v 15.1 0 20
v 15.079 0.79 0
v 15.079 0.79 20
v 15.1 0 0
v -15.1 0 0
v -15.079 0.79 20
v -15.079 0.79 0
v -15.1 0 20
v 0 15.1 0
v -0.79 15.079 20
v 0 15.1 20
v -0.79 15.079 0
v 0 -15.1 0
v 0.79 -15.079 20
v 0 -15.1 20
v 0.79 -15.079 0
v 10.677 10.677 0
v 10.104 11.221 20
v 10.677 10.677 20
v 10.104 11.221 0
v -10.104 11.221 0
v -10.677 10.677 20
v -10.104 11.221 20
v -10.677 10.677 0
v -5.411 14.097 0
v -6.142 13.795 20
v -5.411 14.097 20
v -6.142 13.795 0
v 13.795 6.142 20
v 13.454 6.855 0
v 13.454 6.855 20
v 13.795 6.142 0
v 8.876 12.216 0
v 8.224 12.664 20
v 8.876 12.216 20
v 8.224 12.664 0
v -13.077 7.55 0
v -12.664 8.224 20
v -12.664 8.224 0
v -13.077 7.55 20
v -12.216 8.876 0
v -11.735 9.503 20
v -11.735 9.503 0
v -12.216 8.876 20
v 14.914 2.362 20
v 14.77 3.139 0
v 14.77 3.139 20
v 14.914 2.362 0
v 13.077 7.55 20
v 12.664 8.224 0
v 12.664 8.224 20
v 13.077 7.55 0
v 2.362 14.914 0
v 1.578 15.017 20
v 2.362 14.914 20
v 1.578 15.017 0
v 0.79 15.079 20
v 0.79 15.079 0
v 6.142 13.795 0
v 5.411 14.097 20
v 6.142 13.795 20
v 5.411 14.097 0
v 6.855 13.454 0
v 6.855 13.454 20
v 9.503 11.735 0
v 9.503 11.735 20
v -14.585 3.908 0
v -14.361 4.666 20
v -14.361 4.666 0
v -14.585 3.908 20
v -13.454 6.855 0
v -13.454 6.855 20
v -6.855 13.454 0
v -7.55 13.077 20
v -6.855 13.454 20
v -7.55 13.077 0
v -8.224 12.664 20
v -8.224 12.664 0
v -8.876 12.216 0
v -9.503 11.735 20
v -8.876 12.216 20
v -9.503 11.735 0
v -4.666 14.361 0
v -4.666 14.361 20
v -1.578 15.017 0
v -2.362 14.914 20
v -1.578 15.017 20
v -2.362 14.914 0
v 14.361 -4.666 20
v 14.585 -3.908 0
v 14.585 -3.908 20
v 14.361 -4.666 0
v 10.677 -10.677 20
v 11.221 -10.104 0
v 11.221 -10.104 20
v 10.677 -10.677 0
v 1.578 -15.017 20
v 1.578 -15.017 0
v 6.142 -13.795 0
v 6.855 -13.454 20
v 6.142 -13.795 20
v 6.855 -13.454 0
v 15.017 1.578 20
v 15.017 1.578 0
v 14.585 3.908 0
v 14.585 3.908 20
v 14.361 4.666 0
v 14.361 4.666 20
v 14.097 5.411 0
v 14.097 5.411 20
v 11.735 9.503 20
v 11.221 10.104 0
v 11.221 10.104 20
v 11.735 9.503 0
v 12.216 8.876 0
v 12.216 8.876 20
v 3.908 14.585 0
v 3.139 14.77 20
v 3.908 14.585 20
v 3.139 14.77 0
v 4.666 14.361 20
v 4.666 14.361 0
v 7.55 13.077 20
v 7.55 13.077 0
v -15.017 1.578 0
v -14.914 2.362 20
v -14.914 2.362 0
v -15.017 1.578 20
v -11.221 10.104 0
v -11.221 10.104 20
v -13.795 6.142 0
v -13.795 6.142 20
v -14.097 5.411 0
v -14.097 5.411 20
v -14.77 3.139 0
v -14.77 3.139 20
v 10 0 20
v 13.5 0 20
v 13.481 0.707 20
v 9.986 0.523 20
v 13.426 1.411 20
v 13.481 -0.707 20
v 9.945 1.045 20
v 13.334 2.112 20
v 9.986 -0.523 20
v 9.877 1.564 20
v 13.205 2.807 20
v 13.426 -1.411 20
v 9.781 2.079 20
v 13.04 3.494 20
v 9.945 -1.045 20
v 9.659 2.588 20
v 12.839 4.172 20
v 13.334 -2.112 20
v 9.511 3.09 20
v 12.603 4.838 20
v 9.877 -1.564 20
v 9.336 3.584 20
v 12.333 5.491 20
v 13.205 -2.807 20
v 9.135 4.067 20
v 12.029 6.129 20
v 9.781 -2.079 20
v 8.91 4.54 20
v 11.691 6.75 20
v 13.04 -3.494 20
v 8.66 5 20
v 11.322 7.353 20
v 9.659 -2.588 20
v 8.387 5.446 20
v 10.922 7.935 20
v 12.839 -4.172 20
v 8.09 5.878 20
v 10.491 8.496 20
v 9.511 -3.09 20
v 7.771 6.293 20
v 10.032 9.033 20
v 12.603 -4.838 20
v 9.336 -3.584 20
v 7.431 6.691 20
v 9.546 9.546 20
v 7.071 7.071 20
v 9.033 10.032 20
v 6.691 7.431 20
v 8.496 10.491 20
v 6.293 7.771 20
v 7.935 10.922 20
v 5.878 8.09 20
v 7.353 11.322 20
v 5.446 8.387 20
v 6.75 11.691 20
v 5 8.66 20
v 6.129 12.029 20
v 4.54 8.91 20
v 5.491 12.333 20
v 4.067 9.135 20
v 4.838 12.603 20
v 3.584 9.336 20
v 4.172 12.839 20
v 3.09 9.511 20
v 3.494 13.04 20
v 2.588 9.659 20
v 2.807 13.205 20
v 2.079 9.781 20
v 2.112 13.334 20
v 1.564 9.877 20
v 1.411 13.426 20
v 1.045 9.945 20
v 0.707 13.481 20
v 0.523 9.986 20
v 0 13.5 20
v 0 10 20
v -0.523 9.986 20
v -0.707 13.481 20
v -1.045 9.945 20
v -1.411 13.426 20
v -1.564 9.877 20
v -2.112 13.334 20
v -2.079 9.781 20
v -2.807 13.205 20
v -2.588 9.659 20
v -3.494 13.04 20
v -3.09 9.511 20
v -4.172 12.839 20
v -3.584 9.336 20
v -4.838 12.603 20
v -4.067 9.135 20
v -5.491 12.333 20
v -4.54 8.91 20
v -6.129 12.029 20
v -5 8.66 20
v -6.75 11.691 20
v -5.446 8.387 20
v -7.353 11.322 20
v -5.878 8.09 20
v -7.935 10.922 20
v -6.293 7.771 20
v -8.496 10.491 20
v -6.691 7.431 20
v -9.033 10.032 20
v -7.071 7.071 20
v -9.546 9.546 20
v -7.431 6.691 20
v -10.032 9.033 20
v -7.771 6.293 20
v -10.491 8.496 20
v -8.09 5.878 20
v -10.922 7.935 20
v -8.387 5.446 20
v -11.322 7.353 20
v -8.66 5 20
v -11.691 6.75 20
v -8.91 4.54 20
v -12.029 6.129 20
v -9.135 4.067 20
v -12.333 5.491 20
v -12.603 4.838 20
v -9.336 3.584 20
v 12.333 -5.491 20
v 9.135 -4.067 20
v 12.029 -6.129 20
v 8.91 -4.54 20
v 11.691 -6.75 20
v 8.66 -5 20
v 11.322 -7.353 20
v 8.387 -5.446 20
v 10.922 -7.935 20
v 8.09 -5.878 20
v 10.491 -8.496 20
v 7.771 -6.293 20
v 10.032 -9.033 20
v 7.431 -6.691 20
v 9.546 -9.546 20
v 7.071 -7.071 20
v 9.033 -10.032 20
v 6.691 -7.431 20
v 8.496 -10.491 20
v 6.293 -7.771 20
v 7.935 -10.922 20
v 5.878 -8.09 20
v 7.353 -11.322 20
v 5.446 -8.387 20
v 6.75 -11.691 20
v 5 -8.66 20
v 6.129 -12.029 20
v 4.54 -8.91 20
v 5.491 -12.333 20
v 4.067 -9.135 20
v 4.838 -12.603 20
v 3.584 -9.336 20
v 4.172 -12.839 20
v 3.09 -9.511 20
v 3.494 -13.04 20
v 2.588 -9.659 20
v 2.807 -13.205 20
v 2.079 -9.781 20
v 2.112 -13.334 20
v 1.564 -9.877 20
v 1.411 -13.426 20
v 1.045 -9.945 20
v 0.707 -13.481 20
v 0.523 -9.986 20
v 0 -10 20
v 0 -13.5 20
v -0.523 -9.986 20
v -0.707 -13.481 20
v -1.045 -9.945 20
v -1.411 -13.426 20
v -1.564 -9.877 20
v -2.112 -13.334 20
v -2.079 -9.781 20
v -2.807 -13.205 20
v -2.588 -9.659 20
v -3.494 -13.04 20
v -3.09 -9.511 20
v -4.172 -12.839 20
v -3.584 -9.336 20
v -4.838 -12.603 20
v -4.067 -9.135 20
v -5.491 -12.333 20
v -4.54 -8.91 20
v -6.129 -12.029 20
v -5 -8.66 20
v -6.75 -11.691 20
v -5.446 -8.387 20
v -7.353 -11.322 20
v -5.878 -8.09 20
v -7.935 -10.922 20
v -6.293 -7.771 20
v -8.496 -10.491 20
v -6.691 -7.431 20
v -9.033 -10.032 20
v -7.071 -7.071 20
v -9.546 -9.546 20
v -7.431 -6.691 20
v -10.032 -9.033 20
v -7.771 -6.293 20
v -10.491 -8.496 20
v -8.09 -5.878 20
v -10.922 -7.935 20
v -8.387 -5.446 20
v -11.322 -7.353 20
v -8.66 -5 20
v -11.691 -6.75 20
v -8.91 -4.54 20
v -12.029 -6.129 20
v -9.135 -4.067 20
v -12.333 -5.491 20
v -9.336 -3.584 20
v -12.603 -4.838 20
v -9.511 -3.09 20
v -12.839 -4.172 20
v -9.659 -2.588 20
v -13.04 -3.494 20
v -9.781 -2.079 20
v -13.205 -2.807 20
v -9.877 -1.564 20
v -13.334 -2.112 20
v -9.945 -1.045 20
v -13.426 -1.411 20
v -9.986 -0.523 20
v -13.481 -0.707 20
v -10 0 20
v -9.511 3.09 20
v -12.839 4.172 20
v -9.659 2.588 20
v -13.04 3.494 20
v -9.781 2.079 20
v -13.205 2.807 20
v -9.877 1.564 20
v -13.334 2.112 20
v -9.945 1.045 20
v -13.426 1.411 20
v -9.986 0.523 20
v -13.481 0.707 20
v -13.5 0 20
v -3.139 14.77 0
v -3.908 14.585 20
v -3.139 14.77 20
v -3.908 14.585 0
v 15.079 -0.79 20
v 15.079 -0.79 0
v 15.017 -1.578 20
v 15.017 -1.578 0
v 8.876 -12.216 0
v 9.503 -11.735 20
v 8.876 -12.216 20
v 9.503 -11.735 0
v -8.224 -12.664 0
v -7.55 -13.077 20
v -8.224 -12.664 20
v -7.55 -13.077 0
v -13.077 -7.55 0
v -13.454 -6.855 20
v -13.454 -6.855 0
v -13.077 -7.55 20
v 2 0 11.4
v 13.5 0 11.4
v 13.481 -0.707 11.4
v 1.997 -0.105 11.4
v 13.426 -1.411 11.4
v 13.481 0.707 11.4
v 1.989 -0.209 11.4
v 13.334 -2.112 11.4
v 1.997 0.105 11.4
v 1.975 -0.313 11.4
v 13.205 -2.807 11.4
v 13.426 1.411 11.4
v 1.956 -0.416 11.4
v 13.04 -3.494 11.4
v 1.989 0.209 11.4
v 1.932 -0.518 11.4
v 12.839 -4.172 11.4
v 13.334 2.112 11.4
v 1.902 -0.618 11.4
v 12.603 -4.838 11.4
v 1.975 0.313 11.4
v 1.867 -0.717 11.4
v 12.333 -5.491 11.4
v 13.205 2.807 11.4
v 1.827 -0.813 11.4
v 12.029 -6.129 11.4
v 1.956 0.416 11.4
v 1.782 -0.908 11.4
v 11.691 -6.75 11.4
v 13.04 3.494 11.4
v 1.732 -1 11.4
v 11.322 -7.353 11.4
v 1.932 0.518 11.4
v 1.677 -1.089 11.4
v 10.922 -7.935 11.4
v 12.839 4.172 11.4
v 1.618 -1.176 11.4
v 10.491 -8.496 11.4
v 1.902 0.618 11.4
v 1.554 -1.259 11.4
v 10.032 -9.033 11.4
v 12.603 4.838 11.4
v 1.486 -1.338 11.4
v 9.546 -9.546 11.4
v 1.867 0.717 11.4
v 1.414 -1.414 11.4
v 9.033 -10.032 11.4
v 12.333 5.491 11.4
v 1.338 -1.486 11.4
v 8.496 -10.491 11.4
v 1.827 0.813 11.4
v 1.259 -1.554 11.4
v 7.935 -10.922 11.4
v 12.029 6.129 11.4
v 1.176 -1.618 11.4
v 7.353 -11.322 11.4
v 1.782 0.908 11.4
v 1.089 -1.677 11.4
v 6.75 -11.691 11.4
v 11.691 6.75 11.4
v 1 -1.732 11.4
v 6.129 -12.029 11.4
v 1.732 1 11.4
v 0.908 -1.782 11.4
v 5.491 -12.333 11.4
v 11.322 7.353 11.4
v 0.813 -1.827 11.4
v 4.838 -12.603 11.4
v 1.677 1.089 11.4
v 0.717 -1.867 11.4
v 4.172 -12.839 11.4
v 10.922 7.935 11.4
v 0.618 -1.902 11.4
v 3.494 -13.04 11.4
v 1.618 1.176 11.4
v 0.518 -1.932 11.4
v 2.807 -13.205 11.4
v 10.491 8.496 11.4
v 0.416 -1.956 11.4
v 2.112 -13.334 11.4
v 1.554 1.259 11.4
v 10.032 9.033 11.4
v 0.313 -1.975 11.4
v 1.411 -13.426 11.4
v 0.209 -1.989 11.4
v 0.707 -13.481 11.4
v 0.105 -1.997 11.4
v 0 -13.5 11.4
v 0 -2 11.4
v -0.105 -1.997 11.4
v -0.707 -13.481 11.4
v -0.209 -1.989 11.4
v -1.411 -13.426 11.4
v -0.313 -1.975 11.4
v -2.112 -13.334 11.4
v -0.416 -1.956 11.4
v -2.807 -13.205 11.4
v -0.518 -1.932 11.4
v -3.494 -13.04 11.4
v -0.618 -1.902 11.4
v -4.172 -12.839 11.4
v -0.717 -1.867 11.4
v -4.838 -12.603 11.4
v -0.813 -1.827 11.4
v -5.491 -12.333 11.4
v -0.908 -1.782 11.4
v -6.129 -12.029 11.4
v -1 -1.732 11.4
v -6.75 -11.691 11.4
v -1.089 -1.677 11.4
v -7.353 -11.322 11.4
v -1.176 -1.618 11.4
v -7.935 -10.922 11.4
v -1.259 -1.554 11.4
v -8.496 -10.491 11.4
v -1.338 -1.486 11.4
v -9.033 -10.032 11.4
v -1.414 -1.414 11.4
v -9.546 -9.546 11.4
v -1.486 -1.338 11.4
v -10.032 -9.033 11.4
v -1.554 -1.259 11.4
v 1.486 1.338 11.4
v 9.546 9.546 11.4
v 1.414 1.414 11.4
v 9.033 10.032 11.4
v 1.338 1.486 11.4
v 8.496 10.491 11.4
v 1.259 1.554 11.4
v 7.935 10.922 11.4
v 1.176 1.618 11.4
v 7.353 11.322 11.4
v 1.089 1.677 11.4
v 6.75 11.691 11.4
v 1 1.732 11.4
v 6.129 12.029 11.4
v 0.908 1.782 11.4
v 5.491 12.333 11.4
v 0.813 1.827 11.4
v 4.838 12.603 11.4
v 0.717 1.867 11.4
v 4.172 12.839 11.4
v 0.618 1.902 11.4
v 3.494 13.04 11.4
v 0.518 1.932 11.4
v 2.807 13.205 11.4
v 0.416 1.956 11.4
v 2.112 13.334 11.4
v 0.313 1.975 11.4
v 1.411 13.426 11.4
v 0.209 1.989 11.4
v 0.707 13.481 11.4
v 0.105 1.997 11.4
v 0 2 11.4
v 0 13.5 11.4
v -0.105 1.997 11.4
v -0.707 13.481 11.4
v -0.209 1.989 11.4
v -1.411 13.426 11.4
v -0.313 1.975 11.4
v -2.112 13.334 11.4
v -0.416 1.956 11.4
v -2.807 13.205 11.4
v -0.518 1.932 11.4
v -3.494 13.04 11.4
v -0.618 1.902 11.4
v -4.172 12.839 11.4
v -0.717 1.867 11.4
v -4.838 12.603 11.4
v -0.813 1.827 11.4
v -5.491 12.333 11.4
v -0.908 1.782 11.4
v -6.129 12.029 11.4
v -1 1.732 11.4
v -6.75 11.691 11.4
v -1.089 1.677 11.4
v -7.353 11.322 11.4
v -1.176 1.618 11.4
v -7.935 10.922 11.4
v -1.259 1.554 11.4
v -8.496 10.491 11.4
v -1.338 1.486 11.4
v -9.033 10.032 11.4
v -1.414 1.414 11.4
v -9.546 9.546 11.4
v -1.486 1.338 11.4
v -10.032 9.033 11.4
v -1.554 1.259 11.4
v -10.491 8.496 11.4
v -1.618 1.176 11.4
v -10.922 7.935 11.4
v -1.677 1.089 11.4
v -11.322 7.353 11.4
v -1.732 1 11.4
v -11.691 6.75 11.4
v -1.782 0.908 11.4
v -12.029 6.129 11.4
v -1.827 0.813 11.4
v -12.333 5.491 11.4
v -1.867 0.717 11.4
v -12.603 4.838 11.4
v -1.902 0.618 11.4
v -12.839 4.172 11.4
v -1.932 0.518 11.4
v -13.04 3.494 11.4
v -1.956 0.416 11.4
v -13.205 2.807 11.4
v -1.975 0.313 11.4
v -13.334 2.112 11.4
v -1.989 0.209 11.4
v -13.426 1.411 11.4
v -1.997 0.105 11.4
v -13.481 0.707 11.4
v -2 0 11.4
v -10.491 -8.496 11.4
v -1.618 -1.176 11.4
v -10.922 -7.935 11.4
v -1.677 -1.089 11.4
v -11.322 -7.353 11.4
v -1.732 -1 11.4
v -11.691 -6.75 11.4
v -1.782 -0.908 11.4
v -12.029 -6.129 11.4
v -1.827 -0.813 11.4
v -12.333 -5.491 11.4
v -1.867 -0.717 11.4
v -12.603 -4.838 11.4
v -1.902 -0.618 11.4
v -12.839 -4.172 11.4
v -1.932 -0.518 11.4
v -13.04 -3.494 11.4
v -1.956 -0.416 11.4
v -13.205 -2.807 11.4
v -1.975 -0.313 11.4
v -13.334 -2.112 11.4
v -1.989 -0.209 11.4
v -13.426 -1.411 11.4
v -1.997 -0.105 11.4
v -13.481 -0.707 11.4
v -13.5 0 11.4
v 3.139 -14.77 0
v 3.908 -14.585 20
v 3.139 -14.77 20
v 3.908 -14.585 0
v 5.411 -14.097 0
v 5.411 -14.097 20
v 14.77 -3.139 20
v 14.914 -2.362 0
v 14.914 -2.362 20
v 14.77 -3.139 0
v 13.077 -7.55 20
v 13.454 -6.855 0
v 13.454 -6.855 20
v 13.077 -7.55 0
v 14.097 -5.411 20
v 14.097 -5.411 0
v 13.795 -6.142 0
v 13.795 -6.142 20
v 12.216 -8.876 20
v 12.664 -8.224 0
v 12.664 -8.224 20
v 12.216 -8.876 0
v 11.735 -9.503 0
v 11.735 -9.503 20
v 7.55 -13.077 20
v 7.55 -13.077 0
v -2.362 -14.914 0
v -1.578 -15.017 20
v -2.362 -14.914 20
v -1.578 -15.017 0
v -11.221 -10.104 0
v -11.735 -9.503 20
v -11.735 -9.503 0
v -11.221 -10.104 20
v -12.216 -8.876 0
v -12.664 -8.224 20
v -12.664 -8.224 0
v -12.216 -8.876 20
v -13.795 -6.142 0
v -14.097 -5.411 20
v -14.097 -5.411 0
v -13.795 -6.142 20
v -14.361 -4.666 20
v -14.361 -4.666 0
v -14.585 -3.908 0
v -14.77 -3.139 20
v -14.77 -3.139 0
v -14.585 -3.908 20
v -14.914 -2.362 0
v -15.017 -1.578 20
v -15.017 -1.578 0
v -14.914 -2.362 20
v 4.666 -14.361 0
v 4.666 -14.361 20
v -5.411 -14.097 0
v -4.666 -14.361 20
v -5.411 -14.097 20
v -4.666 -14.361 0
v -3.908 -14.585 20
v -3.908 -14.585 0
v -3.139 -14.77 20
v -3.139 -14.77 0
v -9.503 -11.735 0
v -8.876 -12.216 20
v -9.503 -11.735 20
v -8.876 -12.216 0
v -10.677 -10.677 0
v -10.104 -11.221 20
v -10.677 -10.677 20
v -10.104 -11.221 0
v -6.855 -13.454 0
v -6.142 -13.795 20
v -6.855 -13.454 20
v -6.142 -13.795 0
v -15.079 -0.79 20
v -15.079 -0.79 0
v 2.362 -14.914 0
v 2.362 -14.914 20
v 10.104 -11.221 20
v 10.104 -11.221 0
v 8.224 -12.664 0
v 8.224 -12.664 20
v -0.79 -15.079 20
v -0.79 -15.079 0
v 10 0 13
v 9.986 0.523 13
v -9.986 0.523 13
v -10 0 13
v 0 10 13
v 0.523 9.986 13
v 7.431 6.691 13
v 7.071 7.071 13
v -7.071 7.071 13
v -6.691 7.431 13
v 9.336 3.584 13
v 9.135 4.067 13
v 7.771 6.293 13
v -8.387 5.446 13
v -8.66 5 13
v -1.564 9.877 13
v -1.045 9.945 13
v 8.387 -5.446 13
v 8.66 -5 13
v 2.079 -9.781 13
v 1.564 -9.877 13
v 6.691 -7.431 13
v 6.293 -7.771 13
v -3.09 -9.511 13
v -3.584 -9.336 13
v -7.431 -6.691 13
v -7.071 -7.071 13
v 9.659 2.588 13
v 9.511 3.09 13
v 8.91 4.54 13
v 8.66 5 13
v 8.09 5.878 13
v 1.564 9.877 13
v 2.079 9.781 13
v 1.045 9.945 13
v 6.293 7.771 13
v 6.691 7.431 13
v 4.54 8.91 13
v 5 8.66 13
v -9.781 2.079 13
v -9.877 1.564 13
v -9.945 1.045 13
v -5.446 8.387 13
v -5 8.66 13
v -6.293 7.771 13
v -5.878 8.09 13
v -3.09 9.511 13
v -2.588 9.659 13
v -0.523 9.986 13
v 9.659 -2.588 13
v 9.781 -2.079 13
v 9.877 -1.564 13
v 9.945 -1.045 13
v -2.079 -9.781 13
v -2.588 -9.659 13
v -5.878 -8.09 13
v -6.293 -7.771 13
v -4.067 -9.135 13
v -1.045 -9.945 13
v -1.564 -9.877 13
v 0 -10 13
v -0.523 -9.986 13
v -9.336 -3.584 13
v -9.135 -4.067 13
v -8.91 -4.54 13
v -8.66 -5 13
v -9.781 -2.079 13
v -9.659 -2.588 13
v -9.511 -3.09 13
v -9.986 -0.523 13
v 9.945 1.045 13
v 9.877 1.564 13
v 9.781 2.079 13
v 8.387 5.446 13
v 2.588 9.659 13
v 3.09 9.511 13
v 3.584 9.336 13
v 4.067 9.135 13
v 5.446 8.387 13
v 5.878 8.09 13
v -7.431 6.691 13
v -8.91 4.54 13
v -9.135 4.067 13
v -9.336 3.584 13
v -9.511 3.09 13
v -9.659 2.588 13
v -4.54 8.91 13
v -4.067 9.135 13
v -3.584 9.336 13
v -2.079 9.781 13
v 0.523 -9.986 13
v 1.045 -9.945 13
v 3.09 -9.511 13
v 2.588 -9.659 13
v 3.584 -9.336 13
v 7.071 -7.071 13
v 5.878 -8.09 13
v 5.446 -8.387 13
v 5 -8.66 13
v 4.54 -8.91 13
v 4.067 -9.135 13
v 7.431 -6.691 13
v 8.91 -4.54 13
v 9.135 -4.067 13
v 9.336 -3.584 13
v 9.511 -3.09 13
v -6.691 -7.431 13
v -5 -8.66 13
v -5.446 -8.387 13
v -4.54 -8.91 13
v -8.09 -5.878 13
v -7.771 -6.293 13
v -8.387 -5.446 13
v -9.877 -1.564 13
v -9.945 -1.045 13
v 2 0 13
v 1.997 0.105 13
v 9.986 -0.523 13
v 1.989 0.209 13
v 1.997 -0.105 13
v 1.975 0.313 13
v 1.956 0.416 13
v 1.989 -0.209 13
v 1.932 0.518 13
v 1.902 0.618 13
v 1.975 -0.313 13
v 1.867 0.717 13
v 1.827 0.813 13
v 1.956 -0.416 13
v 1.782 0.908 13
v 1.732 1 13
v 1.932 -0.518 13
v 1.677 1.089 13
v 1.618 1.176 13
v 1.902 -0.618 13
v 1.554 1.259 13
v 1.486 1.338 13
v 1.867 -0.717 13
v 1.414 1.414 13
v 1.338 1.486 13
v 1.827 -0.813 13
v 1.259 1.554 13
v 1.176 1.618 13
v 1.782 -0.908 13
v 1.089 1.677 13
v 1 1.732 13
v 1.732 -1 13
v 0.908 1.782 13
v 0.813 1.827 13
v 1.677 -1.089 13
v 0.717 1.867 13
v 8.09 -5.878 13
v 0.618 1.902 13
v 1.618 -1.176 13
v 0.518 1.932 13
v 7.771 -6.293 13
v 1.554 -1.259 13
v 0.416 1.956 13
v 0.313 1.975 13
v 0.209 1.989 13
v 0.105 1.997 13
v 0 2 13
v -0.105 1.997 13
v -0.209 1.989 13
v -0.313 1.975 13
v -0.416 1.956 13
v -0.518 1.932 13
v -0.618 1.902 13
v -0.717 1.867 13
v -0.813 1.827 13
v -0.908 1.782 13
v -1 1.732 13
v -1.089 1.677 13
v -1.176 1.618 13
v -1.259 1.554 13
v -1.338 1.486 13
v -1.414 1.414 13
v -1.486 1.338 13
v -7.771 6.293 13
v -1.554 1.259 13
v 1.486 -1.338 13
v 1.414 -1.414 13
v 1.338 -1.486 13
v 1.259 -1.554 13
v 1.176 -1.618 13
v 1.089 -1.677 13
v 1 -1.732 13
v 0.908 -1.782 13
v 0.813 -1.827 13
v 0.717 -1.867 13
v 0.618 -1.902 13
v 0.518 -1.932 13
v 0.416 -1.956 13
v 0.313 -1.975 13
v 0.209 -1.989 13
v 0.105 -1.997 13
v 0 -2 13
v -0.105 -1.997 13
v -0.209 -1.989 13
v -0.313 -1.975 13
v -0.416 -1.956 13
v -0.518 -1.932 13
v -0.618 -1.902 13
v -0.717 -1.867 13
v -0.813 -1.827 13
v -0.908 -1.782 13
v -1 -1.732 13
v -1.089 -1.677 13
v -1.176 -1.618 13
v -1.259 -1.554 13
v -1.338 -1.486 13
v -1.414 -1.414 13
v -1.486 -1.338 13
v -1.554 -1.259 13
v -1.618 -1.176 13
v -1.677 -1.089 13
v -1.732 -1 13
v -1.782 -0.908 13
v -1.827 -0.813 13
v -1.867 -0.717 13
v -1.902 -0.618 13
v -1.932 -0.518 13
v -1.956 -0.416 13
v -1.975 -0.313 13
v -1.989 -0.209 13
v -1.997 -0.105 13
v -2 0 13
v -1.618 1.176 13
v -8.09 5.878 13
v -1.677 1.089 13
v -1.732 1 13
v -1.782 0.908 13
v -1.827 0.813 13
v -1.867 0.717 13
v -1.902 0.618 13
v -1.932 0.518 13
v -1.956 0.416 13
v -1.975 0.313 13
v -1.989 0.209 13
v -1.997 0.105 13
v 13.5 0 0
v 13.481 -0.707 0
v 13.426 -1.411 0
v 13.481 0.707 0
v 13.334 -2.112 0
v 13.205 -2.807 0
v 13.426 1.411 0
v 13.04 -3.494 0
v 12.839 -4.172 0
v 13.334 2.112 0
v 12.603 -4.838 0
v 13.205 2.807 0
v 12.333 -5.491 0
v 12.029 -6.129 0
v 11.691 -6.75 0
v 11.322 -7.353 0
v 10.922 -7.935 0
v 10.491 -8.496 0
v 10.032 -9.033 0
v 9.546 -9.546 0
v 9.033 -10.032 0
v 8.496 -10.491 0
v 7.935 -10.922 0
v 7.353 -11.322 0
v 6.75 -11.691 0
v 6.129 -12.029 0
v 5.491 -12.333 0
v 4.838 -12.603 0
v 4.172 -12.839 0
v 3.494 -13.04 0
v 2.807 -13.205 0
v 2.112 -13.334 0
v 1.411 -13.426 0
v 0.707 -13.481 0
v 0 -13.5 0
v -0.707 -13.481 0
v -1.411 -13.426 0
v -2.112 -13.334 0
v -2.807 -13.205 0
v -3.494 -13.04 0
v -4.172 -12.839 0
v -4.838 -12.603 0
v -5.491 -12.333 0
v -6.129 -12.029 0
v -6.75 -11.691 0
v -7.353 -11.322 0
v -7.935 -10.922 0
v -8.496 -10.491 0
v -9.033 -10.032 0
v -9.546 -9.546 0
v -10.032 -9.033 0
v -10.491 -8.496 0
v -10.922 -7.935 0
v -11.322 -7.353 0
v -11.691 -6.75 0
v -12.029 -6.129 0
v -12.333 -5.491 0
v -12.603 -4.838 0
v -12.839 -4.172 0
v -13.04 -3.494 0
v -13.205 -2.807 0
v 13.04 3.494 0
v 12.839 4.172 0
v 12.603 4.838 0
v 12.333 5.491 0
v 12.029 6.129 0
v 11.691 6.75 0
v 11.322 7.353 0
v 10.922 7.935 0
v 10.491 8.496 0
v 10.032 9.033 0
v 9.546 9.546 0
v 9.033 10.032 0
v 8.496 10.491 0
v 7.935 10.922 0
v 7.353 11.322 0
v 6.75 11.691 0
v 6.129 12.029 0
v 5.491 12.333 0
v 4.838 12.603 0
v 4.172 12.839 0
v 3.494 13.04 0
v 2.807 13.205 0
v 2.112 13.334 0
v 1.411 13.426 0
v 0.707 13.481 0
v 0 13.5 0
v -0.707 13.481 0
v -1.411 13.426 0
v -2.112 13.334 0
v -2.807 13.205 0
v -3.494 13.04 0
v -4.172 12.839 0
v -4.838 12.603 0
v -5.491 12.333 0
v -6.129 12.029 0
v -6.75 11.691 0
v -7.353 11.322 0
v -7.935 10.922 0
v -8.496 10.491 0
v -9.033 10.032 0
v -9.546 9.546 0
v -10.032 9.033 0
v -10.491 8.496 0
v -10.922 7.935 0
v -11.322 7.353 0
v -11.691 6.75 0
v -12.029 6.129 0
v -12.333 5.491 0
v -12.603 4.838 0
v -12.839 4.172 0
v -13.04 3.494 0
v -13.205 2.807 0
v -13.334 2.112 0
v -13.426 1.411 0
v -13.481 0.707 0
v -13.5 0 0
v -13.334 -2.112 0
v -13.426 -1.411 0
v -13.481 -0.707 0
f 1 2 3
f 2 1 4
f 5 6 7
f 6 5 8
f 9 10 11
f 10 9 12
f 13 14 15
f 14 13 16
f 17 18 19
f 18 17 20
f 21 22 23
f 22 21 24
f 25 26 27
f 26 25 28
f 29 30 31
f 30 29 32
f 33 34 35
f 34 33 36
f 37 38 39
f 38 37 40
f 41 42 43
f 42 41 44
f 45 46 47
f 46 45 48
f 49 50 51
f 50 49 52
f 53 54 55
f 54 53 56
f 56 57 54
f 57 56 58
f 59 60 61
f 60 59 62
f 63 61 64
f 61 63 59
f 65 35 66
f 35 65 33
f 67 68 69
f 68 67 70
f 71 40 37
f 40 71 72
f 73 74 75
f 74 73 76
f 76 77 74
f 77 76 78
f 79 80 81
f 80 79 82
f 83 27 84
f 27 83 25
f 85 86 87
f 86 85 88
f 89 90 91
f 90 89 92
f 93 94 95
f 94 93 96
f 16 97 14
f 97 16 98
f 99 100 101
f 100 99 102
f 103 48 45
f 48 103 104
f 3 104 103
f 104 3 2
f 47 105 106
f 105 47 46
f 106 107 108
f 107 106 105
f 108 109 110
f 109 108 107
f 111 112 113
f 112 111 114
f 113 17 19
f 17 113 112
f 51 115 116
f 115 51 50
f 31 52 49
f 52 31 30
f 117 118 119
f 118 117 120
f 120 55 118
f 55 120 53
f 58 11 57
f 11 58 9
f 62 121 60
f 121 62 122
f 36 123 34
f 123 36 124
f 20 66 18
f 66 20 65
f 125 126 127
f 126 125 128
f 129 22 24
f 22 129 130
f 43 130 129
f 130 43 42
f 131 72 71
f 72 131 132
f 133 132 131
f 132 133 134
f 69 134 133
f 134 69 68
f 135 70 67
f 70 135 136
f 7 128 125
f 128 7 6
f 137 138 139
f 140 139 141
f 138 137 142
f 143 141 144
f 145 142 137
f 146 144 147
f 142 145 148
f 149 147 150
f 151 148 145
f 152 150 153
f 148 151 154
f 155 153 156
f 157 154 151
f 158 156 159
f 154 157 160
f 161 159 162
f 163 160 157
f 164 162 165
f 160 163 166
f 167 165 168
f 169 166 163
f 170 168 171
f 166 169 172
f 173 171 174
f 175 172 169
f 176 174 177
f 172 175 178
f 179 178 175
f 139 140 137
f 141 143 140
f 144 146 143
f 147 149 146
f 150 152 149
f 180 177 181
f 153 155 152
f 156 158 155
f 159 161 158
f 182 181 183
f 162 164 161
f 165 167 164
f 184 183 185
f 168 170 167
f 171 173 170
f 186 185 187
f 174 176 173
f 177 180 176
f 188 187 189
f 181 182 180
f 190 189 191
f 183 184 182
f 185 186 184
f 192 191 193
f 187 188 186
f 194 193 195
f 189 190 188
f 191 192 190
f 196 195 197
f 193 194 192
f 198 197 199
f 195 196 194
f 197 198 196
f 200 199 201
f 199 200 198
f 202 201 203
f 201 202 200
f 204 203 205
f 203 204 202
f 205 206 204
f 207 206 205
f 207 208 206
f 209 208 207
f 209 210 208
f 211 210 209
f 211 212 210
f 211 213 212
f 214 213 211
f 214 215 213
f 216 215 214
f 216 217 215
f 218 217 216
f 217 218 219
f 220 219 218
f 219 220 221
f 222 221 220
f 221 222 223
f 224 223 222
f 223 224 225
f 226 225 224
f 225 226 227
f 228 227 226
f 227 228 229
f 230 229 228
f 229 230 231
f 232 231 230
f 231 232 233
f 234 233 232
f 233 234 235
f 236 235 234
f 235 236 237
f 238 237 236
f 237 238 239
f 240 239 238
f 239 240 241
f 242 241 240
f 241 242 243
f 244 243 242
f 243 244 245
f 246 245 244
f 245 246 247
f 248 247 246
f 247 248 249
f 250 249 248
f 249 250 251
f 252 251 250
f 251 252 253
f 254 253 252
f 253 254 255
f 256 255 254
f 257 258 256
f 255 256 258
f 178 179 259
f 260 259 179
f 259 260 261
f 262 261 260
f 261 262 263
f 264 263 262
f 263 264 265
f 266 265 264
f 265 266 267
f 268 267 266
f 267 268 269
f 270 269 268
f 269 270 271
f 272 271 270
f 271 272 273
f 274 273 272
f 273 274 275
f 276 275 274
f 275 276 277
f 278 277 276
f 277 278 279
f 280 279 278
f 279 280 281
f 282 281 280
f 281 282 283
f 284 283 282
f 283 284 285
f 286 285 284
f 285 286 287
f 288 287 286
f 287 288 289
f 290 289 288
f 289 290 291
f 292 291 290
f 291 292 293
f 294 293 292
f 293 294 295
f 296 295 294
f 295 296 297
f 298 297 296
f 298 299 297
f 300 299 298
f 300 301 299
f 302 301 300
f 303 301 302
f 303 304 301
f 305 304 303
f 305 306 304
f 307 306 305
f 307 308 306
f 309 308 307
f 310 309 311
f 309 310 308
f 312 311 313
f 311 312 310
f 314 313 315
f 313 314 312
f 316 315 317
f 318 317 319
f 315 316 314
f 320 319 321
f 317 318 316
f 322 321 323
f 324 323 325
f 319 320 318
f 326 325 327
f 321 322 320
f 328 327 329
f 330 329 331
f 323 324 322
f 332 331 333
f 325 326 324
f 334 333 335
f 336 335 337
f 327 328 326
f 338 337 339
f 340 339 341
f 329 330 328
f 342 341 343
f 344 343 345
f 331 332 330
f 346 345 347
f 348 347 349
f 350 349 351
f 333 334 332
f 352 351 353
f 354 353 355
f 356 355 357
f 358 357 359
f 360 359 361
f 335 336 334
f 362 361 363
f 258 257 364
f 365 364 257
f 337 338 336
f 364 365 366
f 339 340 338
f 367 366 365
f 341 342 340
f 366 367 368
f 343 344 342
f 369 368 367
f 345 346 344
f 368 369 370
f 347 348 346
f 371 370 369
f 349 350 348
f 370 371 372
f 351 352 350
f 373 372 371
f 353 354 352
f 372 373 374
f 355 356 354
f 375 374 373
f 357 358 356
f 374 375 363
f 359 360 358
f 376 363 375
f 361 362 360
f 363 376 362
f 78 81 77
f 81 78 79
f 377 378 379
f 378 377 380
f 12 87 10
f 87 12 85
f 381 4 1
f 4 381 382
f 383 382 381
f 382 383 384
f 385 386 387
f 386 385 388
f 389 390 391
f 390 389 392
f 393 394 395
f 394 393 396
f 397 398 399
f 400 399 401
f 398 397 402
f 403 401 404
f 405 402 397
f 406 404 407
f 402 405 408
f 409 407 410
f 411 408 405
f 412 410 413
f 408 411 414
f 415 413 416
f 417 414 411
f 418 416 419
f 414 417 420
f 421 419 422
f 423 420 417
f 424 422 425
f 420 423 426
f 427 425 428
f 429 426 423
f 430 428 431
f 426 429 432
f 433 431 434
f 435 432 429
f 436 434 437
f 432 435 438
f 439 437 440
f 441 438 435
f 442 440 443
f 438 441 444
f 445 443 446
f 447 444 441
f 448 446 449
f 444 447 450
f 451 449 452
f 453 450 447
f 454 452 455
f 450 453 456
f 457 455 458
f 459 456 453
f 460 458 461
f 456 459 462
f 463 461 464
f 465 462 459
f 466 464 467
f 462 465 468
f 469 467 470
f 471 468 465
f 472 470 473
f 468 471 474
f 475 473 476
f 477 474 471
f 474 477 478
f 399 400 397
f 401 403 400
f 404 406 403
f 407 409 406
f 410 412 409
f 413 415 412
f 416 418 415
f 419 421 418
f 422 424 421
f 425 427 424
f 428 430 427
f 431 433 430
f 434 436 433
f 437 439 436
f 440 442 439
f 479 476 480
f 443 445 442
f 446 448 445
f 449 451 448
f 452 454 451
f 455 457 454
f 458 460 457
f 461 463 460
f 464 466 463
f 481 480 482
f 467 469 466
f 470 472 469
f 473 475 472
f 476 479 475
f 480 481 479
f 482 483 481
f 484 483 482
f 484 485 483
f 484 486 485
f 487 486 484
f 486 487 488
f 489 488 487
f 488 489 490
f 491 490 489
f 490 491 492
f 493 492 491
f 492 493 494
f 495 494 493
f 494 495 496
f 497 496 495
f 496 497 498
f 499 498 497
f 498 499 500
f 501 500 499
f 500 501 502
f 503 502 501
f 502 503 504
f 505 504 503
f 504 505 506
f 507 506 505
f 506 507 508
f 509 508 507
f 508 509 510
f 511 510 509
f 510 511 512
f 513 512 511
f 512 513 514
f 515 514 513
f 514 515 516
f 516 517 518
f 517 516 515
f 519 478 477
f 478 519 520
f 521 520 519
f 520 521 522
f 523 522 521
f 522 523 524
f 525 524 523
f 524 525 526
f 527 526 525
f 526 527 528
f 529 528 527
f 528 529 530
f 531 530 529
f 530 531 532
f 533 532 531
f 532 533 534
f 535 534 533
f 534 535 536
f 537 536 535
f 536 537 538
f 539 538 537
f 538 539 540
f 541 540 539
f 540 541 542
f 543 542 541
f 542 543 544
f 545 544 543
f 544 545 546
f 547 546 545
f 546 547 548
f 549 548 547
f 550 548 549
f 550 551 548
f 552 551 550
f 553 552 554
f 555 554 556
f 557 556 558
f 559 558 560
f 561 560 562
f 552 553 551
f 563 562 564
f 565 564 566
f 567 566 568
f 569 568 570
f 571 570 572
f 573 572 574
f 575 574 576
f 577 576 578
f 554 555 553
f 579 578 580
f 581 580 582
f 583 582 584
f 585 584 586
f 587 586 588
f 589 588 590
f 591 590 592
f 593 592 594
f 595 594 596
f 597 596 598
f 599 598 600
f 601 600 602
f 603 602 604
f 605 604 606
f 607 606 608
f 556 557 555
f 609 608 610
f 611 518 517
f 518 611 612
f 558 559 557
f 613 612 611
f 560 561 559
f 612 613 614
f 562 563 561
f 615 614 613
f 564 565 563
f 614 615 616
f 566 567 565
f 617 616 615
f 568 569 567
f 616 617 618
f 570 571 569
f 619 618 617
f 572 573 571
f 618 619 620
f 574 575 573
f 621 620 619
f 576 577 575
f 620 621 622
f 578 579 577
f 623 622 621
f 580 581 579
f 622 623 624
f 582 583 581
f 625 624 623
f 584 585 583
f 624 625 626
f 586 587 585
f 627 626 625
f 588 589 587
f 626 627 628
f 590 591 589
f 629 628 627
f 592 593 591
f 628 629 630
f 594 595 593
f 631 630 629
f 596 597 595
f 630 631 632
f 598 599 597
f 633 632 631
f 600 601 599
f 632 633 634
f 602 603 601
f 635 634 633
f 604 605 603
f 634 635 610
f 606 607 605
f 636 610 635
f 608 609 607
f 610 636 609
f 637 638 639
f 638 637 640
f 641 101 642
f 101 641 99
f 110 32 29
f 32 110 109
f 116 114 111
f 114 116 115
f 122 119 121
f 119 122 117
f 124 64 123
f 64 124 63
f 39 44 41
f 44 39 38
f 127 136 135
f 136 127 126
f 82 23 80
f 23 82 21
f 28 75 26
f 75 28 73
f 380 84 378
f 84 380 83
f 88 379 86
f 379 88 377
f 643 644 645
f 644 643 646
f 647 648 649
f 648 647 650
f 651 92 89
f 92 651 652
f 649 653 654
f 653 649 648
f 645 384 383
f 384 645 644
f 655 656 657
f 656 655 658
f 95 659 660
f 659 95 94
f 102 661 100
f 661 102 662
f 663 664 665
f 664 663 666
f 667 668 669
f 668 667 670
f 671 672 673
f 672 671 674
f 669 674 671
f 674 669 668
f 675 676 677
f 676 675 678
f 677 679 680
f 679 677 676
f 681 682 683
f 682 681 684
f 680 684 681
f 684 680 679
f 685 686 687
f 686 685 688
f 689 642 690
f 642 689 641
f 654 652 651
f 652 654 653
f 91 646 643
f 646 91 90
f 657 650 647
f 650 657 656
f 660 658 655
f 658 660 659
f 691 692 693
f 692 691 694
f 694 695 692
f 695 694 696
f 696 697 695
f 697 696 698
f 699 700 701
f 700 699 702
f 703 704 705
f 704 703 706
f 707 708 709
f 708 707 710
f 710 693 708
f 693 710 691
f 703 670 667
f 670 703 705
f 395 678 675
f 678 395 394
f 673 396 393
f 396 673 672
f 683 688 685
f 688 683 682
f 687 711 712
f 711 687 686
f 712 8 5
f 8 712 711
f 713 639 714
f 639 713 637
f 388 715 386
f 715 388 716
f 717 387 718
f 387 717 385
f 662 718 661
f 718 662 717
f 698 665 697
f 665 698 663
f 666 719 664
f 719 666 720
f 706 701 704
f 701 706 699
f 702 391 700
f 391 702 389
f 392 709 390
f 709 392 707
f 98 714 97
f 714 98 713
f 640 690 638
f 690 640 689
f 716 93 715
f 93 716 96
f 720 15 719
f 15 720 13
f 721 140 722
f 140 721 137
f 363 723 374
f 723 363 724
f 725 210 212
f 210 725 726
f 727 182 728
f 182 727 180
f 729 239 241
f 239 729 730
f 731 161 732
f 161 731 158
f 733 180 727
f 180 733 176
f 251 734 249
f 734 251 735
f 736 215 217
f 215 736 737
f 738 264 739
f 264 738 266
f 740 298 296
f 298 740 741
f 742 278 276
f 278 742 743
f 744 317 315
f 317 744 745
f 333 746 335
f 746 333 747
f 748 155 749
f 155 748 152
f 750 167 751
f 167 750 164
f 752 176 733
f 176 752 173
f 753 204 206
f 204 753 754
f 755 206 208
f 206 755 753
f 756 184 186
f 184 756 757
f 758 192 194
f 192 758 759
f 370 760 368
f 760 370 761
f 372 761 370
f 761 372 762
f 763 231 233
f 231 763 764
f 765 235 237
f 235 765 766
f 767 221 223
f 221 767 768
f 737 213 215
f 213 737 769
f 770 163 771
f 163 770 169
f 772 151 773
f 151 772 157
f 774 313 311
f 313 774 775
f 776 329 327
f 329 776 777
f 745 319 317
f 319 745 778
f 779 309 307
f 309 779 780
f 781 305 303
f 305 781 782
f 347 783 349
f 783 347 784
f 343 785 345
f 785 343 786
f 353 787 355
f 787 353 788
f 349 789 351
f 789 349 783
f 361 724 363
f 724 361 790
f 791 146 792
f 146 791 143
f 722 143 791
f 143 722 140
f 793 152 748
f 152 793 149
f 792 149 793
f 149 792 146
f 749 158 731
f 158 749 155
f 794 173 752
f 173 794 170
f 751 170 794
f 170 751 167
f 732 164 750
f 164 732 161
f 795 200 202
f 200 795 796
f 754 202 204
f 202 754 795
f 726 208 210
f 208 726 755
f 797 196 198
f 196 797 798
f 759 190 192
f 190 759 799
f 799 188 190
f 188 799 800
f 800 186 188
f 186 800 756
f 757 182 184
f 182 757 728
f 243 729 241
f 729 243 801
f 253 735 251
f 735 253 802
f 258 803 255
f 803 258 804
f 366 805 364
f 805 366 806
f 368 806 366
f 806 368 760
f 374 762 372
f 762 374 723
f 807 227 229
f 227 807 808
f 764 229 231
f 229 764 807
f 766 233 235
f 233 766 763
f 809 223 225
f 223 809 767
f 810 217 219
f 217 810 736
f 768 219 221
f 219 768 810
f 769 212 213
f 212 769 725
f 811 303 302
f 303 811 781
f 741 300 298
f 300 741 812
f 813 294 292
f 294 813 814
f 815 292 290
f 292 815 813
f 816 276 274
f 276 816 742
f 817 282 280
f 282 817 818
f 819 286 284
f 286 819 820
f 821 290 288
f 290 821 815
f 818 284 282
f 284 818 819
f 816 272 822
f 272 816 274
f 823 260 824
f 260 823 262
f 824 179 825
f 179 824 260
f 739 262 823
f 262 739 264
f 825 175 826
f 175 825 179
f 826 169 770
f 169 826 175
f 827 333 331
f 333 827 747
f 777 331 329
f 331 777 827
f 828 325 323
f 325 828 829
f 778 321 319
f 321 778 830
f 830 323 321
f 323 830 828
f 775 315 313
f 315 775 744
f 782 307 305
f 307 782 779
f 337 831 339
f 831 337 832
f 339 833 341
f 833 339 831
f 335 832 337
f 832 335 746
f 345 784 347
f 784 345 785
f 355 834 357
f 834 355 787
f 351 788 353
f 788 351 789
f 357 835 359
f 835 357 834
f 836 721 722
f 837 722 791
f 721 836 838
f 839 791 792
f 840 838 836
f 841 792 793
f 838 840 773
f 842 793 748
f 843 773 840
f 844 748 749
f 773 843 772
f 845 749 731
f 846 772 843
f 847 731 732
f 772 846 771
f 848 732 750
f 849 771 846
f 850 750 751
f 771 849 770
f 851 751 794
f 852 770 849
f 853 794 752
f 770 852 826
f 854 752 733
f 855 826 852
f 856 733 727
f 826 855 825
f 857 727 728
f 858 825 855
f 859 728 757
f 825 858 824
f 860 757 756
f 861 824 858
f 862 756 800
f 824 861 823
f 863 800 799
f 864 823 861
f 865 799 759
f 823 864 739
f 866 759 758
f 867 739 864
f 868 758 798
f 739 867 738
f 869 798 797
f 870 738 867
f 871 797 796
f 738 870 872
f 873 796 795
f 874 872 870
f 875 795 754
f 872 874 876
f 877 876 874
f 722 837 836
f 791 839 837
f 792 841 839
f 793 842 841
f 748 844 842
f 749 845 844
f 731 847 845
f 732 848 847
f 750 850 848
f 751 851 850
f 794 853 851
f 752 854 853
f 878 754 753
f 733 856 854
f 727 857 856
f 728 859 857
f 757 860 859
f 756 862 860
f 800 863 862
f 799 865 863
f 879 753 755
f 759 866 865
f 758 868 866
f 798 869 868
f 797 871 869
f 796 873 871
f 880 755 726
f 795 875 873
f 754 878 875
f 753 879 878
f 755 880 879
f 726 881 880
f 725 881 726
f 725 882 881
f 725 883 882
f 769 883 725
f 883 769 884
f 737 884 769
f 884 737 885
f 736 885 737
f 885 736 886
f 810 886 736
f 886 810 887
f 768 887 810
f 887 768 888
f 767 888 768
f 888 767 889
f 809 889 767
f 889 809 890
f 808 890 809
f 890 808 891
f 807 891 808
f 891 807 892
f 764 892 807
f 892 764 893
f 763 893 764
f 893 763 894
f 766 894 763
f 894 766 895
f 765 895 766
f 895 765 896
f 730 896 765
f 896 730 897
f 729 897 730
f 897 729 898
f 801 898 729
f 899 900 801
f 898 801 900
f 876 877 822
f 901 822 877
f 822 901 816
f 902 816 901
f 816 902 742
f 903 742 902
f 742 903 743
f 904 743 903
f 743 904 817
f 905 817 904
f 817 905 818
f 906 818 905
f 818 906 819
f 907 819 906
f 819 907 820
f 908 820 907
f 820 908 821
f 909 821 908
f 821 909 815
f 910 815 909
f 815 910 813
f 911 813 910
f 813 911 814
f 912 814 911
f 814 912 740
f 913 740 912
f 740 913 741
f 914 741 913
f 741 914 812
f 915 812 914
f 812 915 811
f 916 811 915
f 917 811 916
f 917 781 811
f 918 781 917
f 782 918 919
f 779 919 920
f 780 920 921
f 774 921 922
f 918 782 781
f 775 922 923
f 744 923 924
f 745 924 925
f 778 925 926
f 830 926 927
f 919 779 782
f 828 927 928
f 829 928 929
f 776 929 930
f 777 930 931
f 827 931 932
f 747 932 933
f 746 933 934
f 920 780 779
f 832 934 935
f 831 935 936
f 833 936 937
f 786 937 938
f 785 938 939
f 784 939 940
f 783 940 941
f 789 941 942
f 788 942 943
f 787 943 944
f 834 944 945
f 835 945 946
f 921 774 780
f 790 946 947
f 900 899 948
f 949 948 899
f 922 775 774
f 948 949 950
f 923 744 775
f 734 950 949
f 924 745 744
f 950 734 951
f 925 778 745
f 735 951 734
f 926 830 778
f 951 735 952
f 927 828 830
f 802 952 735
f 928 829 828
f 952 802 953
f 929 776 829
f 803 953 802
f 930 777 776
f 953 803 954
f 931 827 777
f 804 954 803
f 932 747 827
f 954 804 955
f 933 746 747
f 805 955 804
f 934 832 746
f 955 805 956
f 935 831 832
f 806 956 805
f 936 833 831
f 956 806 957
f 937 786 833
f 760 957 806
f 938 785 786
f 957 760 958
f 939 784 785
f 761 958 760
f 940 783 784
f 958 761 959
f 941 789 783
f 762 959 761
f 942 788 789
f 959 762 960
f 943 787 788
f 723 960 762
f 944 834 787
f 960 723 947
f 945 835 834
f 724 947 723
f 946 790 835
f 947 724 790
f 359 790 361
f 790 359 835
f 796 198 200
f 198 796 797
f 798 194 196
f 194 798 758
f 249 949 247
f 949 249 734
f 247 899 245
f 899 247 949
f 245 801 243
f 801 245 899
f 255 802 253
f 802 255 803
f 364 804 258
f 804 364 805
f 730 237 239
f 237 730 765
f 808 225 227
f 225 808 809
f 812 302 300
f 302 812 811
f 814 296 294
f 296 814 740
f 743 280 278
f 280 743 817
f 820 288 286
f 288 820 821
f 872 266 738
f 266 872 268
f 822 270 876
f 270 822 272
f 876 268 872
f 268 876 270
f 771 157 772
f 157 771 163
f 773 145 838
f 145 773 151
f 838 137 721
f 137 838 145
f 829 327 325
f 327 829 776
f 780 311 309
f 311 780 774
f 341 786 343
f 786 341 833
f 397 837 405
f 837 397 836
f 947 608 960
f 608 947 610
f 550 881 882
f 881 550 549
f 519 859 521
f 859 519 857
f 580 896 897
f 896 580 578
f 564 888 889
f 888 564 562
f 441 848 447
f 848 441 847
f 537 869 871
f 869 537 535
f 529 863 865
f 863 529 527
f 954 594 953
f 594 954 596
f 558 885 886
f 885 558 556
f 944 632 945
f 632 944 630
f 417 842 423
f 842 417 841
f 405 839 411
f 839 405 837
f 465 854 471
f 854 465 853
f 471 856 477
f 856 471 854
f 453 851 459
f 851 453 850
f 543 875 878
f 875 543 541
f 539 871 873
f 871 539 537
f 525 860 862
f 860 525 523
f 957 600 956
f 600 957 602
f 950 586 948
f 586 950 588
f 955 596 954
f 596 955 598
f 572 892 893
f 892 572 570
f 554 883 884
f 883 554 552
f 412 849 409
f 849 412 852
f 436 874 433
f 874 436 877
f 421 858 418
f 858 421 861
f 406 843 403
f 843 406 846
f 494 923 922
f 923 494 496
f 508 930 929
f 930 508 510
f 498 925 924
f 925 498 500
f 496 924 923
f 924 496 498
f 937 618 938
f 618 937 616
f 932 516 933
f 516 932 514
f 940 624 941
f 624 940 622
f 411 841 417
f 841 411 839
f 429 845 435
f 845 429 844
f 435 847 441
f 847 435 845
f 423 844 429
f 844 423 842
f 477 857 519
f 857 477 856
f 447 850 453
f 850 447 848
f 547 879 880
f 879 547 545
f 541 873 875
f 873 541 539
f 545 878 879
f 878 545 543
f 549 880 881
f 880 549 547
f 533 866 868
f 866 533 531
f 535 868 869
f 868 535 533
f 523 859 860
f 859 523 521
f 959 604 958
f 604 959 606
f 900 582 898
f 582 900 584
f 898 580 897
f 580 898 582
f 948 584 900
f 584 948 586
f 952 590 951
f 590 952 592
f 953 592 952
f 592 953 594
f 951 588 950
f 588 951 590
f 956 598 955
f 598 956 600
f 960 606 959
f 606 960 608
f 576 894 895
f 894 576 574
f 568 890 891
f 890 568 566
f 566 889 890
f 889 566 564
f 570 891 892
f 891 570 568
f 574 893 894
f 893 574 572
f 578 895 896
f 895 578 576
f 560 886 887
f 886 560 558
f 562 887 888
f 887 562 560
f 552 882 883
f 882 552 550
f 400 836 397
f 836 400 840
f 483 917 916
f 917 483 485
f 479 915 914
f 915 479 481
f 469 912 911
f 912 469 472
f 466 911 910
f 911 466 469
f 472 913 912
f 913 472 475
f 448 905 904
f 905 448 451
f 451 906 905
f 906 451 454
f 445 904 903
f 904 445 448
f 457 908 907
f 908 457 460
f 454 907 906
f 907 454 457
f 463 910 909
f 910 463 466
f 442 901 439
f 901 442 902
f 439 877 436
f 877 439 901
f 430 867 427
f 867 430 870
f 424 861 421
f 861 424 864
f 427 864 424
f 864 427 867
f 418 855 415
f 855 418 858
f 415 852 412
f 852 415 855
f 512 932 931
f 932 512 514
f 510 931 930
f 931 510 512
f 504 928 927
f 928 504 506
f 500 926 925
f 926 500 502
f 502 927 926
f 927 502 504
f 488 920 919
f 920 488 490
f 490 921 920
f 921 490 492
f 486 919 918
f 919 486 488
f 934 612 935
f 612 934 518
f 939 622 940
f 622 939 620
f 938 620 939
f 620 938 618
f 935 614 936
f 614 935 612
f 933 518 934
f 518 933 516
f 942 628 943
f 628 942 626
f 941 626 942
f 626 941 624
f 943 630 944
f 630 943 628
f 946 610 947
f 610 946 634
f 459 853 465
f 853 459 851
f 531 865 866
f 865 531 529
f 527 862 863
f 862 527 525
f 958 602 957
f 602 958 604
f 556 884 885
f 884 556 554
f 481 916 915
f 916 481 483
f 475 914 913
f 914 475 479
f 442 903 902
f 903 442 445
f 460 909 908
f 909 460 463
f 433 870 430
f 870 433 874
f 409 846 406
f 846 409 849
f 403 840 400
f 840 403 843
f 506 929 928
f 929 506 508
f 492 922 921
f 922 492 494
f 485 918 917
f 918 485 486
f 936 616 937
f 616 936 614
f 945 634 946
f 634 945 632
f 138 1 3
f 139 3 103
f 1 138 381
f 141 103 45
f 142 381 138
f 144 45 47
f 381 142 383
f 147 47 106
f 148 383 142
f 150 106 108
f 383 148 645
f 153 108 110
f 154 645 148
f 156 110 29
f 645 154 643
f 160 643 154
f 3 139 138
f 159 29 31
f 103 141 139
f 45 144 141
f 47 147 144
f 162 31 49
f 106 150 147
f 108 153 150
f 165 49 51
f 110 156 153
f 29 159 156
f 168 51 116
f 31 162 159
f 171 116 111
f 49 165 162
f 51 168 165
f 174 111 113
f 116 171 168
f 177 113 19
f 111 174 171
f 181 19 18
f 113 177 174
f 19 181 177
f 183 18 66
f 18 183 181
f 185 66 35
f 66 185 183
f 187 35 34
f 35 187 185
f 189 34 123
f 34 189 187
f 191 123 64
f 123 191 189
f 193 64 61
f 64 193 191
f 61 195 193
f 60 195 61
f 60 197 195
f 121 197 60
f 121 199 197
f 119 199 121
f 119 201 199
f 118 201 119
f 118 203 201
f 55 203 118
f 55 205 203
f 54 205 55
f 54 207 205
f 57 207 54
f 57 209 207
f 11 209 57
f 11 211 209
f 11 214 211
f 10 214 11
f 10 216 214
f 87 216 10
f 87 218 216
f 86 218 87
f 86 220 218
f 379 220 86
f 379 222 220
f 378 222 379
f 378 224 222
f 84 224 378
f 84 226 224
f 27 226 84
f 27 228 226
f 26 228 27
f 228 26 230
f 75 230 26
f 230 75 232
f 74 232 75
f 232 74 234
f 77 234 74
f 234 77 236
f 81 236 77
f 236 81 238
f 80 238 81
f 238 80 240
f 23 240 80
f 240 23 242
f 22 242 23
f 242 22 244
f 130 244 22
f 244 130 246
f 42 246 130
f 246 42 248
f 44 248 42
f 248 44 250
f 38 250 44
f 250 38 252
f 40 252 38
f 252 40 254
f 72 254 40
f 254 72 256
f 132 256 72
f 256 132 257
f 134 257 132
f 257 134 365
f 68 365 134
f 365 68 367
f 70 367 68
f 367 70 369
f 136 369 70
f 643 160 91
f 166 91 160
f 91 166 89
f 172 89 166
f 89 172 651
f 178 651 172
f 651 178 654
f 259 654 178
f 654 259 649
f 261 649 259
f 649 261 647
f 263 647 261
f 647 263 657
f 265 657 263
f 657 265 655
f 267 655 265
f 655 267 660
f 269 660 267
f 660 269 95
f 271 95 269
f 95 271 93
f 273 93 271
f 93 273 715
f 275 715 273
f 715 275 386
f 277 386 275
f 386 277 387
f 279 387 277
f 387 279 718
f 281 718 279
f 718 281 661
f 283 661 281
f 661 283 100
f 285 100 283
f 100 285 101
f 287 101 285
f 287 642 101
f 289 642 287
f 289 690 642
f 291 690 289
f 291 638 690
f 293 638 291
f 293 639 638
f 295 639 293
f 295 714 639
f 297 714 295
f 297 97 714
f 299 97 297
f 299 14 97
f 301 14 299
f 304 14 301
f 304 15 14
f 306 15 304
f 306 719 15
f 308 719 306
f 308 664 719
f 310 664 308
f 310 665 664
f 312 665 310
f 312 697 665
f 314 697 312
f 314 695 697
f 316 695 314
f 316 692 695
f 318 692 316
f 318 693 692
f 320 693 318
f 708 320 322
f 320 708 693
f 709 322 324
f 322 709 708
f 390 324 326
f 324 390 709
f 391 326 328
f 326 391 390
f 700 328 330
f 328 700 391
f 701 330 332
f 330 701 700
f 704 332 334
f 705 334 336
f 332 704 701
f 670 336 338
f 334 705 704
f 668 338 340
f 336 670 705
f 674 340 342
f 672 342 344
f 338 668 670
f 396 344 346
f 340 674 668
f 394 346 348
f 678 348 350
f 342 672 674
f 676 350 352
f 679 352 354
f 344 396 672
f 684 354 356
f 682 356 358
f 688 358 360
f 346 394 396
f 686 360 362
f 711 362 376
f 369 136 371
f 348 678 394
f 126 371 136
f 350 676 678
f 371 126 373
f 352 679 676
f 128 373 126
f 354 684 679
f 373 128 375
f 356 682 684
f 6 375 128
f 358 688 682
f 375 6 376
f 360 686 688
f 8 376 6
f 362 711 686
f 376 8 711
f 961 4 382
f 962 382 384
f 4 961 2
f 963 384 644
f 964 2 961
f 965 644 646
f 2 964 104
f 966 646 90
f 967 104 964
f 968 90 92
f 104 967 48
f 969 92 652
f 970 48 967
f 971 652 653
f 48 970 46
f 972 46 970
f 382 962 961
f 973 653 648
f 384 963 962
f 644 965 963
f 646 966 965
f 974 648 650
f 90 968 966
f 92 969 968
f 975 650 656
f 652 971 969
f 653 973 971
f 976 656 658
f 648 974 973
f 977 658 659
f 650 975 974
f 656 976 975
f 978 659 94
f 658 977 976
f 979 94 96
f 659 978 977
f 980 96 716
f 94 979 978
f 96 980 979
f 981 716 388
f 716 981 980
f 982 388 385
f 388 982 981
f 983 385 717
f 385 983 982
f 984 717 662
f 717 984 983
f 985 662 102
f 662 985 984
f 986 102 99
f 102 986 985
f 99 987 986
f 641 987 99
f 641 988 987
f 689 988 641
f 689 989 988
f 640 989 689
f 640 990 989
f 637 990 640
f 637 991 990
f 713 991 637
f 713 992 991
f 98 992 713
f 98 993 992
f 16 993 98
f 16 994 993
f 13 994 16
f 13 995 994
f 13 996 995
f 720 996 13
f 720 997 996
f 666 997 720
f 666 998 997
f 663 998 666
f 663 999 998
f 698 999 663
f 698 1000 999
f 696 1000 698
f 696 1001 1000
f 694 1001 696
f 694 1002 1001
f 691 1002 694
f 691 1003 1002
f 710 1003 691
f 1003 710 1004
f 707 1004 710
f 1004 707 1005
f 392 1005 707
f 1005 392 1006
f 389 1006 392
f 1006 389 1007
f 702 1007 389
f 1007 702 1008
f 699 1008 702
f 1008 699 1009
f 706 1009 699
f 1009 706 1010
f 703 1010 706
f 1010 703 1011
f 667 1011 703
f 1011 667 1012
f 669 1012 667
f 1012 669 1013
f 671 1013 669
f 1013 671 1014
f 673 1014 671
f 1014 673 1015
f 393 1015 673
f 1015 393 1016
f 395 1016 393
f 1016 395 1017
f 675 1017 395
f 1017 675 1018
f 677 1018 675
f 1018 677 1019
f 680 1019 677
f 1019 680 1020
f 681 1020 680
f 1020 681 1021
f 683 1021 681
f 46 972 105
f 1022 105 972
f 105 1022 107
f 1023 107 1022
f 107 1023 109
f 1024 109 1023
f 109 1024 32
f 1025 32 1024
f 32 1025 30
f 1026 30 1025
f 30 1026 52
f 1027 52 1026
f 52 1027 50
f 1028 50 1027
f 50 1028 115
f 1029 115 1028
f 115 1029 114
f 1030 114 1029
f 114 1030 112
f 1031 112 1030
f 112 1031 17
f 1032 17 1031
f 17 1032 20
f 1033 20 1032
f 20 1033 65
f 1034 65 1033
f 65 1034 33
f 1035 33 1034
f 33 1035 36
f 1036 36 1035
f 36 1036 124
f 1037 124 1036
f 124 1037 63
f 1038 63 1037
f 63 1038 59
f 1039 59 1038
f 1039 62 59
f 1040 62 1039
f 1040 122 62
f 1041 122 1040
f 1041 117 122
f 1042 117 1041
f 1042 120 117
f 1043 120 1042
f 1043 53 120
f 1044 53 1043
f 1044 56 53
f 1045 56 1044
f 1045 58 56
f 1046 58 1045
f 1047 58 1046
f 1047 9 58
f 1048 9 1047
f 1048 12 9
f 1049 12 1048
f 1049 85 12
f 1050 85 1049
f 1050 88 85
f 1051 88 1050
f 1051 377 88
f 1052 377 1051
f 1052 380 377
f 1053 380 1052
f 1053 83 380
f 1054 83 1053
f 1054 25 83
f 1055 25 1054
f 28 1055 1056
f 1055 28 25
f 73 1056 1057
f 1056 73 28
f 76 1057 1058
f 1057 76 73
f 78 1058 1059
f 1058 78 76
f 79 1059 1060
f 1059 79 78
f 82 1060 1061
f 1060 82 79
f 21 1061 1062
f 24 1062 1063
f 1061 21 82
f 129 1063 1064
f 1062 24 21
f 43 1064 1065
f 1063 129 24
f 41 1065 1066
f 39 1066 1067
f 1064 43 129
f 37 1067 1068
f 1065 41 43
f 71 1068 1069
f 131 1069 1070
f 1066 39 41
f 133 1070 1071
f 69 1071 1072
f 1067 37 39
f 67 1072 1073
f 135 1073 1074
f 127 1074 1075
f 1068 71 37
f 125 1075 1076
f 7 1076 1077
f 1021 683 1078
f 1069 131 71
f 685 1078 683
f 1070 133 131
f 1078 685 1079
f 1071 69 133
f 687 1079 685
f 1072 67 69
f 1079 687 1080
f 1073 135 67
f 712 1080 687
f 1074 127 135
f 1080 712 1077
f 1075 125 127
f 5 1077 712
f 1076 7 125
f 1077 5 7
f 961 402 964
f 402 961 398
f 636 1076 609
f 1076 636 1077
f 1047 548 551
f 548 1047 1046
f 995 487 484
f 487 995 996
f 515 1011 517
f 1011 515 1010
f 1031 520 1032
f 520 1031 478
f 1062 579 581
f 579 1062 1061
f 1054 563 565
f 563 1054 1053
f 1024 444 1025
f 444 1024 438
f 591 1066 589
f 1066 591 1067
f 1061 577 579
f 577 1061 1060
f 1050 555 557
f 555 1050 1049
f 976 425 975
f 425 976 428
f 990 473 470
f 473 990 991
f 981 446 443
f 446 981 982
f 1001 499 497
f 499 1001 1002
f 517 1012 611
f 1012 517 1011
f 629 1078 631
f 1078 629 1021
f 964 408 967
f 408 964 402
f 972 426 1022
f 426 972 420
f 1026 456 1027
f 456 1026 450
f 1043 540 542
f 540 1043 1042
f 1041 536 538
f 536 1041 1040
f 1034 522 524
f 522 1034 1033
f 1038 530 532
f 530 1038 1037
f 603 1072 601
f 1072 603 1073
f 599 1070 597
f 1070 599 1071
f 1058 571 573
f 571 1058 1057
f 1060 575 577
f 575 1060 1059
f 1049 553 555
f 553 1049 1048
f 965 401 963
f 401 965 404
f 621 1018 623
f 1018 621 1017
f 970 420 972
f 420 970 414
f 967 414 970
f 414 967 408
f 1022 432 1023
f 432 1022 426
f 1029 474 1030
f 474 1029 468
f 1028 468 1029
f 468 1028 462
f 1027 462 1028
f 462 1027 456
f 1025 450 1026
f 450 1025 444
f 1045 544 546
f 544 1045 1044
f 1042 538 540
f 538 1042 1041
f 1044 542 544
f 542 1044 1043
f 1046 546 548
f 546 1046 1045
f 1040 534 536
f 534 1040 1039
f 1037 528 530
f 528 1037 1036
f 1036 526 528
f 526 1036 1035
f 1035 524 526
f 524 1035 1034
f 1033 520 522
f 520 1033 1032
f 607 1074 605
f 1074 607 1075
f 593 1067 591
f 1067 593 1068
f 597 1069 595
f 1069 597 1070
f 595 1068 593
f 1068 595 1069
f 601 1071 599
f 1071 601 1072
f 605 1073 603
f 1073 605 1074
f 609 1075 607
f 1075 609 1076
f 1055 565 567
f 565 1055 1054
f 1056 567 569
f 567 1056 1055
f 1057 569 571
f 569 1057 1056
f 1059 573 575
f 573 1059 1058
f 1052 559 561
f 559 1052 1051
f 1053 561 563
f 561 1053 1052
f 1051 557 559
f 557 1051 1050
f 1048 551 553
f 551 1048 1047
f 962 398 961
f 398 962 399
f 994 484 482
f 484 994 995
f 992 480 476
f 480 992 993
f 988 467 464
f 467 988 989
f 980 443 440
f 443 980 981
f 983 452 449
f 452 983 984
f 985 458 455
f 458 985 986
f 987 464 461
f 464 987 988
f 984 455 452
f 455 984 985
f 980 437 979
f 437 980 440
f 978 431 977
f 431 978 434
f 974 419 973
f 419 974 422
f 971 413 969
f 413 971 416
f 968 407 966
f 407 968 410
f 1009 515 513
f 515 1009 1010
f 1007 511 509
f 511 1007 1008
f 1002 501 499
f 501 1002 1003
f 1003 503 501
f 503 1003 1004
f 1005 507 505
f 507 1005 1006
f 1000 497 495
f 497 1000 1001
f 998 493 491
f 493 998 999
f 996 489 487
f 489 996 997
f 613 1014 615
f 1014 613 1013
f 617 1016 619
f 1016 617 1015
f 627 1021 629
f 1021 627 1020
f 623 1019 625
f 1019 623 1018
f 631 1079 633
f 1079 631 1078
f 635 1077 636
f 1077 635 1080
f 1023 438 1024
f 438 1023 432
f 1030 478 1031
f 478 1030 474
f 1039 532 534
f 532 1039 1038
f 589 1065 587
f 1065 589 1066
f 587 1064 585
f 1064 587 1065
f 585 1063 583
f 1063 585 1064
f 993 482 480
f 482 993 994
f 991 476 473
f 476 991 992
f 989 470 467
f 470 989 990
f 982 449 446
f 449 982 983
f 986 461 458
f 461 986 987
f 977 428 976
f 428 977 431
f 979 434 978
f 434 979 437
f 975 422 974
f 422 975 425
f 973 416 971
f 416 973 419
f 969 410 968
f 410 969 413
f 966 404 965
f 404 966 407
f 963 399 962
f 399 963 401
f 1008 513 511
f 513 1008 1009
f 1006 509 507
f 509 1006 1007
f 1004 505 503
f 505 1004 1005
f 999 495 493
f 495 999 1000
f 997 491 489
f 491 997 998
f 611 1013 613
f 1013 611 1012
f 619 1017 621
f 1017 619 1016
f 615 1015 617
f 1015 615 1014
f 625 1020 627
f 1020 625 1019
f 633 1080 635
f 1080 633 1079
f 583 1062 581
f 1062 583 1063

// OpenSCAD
$fn=120;
h=20;
r = 27/2;
nozzle=0.4;
wall = 4*nozzle;

h_mag=7;
d_mag=20;
m_screw=4;

translate([0,0,h-h_mag-wall]) {
    difference(){
        cylinder(h_mag+wall,r+wall,r+wall);
        translate([0,0,wall])
        cylinder(h_mag*2,d_mag/2,d_mag/2);
        #translate([0,0,-wall])
        cylinder(h_mag*2,m_screw/2,m_screw/2);
    }
}

difference(){
    cylinder(h,r+wall,r+wall);
    translate([0,0,-h/2])
    cylinder(h*2,r,r);
}
